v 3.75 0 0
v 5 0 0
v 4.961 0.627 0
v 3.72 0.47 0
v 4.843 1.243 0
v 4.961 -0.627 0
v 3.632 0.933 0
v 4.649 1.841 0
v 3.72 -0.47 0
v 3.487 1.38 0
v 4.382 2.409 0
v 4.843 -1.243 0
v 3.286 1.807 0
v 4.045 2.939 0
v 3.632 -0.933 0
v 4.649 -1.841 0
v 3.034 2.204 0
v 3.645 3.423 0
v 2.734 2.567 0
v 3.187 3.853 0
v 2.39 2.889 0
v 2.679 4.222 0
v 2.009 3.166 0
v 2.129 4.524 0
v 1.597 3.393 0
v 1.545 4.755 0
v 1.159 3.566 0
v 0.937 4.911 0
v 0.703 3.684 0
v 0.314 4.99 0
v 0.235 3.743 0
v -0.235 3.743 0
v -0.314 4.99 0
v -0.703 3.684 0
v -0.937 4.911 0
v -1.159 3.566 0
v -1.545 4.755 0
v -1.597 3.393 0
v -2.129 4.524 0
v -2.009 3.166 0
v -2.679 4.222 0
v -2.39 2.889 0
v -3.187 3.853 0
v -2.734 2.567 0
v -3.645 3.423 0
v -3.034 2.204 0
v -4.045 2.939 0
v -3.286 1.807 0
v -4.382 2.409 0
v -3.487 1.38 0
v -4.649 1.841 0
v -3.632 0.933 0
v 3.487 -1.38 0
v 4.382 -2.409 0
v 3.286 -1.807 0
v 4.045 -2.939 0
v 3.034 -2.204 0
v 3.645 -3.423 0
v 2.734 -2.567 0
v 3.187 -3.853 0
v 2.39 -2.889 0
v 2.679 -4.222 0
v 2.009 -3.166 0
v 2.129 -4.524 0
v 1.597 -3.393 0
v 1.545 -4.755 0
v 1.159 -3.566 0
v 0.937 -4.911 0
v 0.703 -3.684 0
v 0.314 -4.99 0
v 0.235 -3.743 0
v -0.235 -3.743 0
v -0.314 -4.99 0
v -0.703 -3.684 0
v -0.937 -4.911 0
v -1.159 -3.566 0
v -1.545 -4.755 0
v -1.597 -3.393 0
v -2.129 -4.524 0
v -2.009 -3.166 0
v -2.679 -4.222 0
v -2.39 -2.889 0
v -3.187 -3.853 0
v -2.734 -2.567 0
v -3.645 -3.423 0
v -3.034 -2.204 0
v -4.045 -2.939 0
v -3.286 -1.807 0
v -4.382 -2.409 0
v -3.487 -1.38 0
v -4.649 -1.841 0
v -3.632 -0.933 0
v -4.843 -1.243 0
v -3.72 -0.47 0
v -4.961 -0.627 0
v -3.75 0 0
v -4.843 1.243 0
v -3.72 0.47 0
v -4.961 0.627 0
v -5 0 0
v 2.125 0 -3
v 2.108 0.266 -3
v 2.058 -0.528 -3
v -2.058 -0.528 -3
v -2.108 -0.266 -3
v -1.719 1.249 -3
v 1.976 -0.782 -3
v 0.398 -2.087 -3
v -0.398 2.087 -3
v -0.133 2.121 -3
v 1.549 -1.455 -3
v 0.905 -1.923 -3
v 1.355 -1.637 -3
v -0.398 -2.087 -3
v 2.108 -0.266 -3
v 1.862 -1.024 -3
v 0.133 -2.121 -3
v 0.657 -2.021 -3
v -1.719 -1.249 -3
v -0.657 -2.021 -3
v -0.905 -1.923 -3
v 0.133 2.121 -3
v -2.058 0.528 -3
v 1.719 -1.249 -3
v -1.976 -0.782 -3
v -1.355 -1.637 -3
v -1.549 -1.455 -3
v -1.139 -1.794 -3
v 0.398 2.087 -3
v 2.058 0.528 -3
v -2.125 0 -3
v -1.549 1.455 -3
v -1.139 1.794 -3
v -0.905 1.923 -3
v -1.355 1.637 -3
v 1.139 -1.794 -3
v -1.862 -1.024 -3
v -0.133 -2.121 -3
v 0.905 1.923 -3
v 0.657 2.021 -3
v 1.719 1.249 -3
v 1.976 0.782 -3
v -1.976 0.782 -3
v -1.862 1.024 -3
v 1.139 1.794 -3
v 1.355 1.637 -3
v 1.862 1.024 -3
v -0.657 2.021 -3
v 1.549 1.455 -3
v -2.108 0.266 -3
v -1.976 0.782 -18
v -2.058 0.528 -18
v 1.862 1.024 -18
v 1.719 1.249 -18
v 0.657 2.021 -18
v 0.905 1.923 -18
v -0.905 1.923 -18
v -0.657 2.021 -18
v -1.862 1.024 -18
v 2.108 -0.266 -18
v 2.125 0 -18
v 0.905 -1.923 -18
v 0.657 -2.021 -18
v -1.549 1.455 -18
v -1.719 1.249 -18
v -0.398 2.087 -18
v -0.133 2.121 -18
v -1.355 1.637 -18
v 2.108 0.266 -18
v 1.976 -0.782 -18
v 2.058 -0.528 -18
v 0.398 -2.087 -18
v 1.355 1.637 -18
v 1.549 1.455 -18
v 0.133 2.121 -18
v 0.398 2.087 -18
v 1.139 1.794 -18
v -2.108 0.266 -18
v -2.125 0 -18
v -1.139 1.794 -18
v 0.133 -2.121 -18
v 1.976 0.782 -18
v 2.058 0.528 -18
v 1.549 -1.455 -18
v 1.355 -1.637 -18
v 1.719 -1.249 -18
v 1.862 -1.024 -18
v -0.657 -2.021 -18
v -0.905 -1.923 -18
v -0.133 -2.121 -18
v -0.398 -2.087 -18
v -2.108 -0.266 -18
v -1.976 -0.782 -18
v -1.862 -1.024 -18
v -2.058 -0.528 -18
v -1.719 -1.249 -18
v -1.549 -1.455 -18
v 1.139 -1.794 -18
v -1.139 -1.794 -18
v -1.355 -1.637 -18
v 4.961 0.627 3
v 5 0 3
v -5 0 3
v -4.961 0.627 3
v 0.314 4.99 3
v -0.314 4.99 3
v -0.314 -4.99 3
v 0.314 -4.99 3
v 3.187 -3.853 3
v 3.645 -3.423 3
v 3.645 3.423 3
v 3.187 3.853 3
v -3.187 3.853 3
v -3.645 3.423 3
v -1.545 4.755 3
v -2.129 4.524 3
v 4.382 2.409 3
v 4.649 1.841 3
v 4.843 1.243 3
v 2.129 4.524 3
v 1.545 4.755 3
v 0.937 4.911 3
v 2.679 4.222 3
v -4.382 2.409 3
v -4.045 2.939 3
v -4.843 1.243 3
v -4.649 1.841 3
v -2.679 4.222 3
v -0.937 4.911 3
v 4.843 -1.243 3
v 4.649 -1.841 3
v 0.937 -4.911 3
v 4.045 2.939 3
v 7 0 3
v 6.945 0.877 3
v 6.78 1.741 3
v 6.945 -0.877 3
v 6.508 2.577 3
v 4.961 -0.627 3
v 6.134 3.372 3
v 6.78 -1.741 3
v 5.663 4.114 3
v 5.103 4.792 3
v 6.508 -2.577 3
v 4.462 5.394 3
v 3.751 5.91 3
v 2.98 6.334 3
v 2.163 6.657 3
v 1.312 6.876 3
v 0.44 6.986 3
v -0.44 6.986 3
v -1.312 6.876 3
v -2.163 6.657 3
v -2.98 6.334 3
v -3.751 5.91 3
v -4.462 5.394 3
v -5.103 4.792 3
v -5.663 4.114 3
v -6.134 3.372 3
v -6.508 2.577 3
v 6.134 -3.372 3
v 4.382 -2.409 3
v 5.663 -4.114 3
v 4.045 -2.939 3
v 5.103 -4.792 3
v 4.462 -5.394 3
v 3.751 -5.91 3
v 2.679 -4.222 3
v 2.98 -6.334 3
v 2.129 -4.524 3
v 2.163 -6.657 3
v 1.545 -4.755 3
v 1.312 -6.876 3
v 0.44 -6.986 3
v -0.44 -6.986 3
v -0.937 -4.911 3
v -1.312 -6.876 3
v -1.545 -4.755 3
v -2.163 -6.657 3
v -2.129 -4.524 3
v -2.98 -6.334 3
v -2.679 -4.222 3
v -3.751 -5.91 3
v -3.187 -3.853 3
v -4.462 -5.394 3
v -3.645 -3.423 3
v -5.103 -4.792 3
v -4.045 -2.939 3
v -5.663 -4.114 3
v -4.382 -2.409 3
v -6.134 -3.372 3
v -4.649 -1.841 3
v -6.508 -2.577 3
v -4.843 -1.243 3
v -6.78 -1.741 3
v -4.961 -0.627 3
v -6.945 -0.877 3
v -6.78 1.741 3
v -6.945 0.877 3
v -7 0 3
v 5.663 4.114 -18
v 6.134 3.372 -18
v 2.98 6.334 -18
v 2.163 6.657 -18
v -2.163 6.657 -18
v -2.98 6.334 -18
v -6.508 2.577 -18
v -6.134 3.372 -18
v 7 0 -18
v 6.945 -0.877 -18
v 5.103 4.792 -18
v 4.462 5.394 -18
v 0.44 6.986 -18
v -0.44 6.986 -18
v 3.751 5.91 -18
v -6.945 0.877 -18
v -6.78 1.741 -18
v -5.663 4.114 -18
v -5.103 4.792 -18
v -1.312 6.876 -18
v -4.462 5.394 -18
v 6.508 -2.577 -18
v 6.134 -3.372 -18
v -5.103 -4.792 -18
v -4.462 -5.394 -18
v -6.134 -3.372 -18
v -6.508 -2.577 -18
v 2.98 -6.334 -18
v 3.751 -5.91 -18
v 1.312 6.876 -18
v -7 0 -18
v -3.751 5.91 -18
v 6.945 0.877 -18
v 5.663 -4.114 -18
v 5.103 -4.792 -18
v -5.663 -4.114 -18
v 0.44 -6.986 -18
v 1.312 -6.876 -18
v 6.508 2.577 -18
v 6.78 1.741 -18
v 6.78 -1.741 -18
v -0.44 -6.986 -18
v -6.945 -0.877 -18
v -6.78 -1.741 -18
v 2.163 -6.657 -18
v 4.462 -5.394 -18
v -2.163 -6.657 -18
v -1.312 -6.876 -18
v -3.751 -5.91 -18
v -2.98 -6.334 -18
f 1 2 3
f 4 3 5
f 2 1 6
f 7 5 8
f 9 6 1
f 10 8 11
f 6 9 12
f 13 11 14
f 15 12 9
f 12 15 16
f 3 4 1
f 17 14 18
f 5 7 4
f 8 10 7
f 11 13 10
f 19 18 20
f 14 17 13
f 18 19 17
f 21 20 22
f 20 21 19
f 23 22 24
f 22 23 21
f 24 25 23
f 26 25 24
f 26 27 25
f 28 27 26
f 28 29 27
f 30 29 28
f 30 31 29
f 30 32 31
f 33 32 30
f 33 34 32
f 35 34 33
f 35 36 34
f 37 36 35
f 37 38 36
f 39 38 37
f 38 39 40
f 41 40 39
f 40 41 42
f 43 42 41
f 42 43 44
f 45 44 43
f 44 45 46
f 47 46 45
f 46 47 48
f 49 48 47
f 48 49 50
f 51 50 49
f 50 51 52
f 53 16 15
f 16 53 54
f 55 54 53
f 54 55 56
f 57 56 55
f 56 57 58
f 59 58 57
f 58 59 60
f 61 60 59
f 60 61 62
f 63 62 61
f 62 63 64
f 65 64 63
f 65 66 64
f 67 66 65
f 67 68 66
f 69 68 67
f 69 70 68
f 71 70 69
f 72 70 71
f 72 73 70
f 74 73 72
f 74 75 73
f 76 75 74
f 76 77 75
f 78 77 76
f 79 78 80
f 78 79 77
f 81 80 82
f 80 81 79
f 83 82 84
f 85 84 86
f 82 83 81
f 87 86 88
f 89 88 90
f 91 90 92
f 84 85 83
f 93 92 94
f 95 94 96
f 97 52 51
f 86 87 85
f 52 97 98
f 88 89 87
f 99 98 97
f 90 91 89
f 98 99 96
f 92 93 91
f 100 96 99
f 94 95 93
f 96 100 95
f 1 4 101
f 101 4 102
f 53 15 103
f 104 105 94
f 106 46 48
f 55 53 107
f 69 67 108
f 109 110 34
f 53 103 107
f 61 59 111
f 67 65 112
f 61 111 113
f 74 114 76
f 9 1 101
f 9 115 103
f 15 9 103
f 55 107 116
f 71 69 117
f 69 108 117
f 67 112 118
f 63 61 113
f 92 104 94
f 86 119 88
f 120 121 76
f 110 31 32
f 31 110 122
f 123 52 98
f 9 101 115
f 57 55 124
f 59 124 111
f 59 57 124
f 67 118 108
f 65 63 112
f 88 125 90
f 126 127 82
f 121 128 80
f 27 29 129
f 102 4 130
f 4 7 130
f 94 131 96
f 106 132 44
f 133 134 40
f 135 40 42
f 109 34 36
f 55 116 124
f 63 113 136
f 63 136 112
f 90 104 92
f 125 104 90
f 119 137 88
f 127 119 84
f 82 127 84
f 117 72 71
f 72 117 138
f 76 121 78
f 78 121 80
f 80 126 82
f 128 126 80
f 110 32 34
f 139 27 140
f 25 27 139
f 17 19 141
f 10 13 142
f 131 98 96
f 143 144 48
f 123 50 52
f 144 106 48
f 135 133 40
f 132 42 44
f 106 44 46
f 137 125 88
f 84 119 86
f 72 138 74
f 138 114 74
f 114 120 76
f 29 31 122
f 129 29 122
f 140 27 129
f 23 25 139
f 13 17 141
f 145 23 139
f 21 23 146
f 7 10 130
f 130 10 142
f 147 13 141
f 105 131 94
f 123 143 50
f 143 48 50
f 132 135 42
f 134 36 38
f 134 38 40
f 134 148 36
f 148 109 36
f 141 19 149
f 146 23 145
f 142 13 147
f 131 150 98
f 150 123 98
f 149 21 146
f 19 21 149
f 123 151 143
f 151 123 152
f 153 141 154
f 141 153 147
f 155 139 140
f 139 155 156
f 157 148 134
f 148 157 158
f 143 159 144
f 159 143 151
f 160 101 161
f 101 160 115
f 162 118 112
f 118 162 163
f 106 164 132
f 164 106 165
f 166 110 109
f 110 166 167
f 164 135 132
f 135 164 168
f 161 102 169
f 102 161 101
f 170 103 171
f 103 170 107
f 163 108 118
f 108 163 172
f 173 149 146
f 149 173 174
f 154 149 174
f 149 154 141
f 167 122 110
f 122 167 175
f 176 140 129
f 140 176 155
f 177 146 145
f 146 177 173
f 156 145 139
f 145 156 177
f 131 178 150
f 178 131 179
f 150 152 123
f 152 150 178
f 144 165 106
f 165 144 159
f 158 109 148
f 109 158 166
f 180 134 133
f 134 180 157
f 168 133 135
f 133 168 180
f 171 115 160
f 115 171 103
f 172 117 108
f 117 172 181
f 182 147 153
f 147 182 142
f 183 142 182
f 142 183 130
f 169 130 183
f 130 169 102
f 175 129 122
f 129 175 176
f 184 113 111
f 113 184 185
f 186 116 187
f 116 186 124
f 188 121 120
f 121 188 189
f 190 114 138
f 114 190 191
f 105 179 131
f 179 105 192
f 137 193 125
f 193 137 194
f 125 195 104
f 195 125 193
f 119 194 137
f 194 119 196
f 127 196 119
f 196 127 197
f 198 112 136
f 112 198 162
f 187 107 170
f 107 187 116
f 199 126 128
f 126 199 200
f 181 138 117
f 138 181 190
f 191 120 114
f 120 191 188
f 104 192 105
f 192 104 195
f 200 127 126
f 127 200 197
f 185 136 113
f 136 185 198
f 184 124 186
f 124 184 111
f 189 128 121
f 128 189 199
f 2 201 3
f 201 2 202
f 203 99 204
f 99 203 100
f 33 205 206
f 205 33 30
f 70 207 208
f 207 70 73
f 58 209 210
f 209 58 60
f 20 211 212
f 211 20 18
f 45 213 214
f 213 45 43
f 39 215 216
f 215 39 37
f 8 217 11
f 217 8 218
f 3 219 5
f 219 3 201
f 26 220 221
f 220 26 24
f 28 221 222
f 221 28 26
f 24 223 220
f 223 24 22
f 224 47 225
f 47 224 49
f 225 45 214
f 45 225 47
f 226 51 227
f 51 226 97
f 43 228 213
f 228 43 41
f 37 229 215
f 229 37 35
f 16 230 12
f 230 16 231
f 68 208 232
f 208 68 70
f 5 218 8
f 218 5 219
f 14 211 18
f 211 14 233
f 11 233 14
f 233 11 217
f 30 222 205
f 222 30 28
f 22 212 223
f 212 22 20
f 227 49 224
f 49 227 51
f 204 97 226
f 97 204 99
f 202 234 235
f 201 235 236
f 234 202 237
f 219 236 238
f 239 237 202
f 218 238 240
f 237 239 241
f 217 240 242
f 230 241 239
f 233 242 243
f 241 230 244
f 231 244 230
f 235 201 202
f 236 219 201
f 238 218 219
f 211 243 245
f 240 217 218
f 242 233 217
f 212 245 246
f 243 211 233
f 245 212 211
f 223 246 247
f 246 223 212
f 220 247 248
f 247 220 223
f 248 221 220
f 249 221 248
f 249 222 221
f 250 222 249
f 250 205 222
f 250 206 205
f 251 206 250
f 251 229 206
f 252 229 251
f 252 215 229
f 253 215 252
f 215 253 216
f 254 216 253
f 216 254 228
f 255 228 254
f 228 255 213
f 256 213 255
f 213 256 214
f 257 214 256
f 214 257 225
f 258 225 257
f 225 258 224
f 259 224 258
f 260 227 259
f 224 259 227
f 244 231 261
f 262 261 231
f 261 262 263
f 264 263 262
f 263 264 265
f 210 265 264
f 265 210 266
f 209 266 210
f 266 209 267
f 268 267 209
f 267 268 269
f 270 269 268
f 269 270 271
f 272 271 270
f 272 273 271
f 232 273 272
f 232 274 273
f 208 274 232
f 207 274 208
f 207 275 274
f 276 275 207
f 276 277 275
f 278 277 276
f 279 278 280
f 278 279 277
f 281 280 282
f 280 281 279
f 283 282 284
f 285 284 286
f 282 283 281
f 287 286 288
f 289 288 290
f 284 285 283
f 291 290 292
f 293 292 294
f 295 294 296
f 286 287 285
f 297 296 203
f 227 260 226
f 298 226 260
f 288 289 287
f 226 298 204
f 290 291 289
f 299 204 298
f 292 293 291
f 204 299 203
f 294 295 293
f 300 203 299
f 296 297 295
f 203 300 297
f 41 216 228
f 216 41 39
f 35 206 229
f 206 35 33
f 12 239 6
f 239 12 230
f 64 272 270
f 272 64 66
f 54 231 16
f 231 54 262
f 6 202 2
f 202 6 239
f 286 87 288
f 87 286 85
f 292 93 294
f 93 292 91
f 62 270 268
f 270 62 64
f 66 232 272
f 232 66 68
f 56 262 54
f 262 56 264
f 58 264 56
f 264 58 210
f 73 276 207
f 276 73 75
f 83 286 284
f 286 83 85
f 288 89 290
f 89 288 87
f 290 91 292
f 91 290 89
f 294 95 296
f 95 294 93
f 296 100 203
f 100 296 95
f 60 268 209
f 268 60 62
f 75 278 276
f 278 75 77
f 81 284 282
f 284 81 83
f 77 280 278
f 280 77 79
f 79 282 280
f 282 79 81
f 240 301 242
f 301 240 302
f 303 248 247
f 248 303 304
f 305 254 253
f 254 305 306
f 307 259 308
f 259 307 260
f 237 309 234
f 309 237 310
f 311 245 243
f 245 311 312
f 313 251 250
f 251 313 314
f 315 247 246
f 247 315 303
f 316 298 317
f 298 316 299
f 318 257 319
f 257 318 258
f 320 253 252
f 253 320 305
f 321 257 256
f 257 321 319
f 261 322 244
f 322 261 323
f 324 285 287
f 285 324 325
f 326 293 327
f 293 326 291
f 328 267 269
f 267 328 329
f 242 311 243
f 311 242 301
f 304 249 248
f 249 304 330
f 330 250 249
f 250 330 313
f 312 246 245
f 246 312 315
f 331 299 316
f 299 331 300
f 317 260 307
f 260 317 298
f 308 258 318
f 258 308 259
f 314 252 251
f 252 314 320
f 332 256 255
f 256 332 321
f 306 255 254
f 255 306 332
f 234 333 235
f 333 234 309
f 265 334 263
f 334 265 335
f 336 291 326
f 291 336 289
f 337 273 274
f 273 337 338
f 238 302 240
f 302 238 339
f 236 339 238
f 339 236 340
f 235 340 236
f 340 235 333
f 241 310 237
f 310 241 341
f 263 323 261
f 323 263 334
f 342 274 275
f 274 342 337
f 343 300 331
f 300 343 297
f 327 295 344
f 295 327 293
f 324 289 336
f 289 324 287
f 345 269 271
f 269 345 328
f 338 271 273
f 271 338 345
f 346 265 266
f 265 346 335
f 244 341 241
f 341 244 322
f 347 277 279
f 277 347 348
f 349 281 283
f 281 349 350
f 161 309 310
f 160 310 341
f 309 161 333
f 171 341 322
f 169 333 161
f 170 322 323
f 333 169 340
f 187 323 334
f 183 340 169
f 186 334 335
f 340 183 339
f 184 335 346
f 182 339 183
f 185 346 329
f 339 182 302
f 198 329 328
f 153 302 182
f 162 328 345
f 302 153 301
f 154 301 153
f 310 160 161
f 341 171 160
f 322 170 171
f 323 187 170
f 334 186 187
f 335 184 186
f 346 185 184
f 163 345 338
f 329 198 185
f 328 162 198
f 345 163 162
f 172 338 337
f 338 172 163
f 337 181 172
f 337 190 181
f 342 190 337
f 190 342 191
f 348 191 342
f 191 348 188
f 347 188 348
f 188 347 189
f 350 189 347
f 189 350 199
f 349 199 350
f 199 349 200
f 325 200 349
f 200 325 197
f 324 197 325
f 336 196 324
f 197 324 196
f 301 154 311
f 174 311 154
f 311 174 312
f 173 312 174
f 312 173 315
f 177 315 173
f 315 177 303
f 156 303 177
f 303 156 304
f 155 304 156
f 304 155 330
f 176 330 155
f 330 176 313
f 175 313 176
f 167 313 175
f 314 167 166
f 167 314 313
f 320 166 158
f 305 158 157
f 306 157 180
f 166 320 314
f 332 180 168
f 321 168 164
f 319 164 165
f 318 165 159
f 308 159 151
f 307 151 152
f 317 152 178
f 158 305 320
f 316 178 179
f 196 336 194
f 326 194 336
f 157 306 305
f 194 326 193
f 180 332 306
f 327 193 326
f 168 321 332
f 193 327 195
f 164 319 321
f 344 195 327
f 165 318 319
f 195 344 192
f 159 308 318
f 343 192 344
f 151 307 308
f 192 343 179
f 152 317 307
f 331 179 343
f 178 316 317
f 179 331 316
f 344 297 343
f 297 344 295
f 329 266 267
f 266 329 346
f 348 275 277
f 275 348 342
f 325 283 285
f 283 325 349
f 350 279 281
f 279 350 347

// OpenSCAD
$fn = 50;


difference() {
	union() {
		translate(v = [0, 0, -18.0000000000]) {
			cylinder(h = 21, r = 7.0000000000);
		}
	}
	union() {
		translate(v = [0, 0, 0]) {
			rotate(a = [0, 0, 0]) {
				difference() {
					union() {
						translate(v = [0, 0, -21.0000000000]) {
							cylinder(h = 21, r = 2.0000000000);
						}
						translate(v = [0, 0, -3]) {
							cylinder(h = 3, r1 = 2.1250000000, r2 = 3.7500000000);
						}
						translate(v = [0, 0, -21.0000000000]) {
							cylinder(h = 21, r = 2.1250000000);
						}
						translate(v = [0, 0, -21.0000000000]) {
							cylinder(h = 21, r = 2.0000000000);
						}
					}
					union();
				}
			}
		}
		#cylinder(h = 3, r = 5.0000000000);
	}
}
